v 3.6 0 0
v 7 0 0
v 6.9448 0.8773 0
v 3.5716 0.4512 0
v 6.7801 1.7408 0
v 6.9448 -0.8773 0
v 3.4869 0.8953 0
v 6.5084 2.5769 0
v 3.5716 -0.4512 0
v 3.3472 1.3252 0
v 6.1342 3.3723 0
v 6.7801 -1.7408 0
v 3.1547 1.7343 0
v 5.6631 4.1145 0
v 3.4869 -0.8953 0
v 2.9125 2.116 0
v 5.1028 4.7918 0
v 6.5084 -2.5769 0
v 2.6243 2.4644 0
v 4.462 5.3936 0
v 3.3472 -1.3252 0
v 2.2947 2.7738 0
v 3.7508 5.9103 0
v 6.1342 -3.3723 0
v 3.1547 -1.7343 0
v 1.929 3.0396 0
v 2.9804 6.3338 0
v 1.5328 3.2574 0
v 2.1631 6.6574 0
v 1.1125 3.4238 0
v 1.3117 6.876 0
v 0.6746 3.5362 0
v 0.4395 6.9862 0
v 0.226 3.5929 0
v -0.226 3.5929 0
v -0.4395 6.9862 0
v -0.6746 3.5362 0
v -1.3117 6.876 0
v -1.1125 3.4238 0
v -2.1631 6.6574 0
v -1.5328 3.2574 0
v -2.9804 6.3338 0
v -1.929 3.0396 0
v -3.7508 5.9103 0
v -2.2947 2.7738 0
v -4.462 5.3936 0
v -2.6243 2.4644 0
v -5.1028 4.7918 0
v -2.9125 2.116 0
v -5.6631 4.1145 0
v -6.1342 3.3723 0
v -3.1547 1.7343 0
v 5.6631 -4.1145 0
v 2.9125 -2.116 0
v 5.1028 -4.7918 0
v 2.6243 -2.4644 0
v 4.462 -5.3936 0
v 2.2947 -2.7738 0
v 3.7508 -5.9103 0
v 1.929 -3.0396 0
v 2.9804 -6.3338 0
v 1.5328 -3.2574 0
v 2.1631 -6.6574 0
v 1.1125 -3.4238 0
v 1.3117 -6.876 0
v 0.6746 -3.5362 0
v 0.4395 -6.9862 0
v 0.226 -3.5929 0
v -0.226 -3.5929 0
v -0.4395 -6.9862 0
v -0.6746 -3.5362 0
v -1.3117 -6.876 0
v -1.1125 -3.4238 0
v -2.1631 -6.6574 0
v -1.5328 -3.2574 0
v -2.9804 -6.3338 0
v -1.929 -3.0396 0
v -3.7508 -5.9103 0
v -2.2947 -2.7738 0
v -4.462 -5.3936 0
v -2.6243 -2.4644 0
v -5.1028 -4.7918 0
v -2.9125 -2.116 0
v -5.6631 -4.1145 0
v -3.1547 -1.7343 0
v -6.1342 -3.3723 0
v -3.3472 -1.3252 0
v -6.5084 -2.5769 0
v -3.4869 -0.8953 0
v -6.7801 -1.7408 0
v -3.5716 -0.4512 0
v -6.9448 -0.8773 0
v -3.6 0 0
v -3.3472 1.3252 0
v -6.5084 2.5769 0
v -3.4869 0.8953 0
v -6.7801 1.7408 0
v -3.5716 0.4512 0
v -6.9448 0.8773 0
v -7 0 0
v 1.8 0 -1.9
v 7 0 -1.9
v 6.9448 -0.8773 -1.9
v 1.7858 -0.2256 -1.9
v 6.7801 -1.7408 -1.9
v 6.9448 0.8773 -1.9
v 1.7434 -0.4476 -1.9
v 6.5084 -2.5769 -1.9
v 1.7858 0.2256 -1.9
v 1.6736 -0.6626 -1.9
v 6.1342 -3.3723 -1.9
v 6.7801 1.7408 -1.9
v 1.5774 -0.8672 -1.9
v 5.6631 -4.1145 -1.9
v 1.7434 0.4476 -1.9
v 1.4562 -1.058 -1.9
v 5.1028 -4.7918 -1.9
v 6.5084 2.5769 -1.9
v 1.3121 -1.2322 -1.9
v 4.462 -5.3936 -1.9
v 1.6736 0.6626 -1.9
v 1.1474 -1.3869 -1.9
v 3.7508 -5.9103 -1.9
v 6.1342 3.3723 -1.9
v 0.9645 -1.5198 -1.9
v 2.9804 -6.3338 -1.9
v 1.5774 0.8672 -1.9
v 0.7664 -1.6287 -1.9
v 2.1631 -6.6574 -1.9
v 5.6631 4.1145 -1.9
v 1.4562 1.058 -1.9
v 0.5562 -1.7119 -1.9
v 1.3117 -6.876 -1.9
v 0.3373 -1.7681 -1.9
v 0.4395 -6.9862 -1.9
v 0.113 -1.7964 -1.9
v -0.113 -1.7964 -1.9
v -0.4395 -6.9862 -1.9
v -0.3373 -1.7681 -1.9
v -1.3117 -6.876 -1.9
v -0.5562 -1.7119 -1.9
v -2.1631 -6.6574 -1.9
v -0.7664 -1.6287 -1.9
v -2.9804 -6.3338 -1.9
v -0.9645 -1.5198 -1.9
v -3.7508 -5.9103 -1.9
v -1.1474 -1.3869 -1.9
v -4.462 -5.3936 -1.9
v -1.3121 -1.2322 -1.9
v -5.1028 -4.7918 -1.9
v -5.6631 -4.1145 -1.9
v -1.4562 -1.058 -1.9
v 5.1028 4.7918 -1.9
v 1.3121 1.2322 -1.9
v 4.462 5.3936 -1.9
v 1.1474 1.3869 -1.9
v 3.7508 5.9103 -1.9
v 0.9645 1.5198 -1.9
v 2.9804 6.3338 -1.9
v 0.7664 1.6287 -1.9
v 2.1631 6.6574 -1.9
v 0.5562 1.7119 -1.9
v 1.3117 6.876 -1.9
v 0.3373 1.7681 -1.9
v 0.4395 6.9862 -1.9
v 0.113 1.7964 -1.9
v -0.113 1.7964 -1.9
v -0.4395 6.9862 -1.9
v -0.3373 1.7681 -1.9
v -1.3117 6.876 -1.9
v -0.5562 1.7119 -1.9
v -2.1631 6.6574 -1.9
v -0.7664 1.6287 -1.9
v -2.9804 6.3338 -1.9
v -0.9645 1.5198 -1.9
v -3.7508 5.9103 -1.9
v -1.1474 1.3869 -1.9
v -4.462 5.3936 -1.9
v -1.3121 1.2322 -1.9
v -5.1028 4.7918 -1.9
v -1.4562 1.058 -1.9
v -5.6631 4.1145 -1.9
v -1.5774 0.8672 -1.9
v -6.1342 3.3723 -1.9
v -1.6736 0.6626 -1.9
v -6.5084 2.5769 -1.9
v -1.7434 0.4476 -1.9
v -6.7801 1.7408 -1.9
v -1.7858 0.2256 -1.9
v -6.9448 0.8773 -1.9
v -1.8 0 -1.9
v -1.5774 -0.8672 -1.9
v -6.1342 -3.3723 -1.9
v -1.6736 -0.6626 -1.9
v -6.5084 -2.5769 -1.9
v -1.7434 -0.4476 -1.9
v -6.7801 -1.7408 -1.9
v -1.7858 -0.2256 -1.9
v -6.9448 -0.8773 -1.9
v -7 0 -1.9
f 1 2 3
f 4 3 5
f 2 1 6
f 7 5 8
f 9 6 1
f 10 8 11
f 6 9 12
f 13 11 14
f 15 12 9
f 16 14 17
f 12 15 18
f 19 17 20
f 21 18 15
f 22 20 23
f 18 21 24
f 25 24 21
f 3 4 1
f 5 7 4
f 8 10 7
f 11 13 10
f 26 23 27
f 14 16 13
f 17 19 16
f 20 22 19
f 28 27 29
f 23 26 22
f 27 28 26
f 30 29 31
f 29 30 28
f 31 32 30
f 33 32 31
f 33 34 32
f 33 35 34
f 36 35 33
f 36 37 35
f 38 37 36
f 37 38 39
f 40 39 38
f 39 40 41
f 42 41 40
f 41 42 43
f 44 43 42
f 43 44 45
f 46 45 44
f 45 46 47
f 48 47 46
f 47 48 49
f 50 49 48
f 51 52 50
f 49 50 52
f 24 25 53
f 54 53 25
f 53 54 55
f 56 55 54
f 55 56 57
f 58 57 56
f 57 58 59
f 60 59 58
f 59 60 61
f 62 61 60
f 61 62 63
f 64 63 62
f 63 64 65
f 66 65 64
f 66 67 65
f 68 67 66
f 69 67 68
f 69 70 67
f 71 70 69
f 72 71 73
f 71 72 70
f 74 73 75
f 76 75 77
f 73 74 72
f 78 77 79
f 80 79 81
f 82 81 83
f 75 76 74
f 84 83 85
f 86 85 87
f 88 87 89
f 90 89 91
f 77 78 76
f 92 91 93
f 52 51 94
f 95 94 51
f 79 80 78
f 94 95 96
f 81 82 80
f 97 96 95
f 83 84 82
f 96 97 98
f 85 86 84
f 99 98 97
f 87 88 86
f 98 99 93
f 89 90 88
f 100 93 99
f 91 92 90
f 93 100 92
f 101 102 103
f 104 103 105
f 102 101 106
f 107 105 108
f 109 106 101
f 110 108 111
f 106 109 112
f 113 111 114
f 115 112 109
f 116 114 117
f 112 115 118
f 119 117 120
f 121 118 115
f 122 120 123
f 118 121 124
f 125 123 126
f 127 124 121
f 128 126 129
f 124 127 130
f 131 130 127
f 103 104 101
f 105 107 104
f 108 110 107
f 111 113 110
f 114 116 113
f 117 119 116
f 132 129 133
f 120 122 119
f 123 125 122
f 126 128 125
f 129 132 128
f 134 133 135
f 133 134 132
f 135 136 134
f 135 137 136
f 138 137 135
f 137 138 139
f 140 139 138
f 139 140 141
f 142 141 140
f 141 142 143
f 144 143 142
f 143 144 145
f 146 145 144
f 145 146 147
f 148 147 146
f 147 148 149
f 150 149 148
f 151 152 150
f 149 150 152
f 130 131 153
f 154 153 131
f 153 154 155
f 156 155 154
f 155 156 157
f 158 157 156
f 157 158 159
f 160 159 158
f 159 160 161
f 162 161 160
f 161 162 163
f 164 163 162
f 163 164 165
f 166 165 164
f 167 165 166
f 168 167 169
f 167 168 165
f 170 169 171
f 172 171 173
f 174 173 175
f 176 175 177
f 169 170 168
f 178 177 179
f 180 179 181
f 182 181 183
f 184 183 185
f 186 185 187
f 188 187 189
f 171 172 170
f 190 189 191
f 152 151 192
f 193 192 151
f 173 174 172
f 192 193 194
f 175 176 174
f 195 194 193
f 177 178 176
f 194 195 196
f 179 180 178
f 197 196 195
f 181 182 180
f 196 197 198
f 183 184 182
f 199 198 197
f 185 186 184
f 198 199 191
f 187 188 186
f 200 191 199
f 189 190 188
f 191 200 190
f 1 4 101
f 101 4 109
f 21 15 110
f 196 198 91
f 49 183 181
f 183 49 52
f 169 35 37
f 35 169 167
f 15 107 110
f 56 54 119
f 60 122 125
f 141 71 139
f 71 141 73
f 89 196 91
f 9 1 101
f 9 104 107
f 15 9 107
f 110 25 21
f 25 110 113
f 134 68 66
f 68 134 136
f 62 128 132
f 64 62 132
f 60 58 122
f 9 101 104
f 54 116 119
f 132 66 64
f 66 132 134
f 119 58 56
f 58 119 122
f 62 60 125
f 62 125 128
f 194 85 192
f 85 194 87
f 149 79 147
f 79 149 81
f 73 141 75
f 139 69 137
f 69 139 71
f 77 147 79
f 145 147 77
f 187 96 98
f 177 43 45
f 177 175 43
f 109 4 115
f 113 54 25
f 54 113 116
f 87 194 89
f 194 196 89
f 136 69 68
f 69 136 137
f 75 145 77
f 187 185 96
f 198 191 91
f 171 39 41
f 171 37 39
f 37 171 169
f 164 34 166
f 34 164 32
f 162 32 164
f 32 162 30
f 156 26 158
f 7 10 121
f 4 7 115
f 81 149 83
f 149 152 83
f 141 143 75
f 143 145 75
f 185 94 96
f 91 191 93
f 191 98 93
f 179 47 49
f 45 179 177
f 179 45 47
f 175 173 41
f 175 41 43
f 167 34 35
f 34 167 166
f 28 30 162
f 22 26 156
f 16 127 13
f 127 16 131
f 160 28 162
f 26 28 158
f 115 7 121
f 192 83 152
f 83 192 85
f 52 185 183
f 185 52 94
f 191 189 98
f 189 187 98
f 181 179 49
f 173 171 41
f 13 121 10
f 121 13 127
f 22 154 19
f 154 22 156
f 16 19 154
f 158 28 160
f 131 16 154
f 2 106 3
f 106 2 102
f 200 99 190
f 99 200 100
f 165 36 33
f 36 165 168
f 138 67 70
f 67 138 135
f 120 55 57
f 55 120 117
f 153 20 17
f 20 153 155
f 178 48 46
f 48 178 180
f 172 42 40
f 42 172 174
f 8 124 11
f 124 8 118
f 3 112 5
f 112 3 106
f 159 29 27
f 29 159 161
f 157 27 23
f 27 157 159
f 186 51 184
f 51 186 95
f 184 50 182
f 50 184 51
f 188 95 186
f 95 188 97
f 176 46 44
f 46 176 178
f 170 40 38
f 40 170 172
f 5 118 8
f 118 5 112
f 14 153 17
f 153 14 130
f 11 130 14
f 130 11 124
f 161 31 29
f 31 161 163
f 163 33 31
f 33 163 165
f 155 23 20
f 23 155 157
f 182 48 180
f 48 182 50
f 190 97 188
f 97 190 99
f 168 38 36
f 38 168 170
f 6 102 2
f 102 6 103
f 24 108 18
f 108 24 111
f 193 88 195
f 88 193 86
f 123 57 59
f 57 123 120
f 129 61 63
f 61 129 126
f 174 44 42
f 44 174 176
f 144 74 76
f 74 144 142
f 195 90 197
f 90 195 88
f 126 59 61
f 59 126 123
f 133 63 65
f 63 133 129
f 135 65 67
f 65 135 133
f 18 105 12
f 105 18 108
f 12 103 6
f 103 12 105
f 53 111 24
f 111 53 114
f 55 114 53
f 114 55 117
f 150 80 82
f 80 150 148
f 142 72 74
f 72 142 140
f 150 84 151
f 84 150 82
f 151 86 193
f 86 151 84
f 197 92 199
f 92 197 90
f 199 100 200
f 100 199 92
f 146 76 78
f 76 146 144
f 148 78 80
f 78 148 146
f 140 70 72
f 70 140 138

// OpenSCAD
$fn = 50;


difference() {
	union() {
		translate(v = [0, 0, -1.9000000000]) {
			cylinder(h = 1.9000000000, r = 7.0000000000);
		}
	}
	union() {
		translate(v = [0, 0, 0]) {
			rotate(a = [0, 0, 0]) {
				difference() {
					union() {
						#translate(v = [0, 0, -1.9000000000]) {
							cylinder(h = 1.9000000000, r = 1.5000000000);
						}
						#translate(v = [0, 0, -1.9000000000]) {
							cylinder(h = 1.9000000000, r1 = 1.8000000000, r2 = 3.6000000000);
						}
						#translate(v = [0, 0, -1.9000000000]) {
							cylinder(h = 1.9000000000, r = 1.8000000000);
						}
						#translate(v = [0, 0, -1.9000000000]) {
							cylinder(h = 1.9000000000, r = 1.5000000000);
						}
					}
					union();
				}
			}
		}
	}
}
